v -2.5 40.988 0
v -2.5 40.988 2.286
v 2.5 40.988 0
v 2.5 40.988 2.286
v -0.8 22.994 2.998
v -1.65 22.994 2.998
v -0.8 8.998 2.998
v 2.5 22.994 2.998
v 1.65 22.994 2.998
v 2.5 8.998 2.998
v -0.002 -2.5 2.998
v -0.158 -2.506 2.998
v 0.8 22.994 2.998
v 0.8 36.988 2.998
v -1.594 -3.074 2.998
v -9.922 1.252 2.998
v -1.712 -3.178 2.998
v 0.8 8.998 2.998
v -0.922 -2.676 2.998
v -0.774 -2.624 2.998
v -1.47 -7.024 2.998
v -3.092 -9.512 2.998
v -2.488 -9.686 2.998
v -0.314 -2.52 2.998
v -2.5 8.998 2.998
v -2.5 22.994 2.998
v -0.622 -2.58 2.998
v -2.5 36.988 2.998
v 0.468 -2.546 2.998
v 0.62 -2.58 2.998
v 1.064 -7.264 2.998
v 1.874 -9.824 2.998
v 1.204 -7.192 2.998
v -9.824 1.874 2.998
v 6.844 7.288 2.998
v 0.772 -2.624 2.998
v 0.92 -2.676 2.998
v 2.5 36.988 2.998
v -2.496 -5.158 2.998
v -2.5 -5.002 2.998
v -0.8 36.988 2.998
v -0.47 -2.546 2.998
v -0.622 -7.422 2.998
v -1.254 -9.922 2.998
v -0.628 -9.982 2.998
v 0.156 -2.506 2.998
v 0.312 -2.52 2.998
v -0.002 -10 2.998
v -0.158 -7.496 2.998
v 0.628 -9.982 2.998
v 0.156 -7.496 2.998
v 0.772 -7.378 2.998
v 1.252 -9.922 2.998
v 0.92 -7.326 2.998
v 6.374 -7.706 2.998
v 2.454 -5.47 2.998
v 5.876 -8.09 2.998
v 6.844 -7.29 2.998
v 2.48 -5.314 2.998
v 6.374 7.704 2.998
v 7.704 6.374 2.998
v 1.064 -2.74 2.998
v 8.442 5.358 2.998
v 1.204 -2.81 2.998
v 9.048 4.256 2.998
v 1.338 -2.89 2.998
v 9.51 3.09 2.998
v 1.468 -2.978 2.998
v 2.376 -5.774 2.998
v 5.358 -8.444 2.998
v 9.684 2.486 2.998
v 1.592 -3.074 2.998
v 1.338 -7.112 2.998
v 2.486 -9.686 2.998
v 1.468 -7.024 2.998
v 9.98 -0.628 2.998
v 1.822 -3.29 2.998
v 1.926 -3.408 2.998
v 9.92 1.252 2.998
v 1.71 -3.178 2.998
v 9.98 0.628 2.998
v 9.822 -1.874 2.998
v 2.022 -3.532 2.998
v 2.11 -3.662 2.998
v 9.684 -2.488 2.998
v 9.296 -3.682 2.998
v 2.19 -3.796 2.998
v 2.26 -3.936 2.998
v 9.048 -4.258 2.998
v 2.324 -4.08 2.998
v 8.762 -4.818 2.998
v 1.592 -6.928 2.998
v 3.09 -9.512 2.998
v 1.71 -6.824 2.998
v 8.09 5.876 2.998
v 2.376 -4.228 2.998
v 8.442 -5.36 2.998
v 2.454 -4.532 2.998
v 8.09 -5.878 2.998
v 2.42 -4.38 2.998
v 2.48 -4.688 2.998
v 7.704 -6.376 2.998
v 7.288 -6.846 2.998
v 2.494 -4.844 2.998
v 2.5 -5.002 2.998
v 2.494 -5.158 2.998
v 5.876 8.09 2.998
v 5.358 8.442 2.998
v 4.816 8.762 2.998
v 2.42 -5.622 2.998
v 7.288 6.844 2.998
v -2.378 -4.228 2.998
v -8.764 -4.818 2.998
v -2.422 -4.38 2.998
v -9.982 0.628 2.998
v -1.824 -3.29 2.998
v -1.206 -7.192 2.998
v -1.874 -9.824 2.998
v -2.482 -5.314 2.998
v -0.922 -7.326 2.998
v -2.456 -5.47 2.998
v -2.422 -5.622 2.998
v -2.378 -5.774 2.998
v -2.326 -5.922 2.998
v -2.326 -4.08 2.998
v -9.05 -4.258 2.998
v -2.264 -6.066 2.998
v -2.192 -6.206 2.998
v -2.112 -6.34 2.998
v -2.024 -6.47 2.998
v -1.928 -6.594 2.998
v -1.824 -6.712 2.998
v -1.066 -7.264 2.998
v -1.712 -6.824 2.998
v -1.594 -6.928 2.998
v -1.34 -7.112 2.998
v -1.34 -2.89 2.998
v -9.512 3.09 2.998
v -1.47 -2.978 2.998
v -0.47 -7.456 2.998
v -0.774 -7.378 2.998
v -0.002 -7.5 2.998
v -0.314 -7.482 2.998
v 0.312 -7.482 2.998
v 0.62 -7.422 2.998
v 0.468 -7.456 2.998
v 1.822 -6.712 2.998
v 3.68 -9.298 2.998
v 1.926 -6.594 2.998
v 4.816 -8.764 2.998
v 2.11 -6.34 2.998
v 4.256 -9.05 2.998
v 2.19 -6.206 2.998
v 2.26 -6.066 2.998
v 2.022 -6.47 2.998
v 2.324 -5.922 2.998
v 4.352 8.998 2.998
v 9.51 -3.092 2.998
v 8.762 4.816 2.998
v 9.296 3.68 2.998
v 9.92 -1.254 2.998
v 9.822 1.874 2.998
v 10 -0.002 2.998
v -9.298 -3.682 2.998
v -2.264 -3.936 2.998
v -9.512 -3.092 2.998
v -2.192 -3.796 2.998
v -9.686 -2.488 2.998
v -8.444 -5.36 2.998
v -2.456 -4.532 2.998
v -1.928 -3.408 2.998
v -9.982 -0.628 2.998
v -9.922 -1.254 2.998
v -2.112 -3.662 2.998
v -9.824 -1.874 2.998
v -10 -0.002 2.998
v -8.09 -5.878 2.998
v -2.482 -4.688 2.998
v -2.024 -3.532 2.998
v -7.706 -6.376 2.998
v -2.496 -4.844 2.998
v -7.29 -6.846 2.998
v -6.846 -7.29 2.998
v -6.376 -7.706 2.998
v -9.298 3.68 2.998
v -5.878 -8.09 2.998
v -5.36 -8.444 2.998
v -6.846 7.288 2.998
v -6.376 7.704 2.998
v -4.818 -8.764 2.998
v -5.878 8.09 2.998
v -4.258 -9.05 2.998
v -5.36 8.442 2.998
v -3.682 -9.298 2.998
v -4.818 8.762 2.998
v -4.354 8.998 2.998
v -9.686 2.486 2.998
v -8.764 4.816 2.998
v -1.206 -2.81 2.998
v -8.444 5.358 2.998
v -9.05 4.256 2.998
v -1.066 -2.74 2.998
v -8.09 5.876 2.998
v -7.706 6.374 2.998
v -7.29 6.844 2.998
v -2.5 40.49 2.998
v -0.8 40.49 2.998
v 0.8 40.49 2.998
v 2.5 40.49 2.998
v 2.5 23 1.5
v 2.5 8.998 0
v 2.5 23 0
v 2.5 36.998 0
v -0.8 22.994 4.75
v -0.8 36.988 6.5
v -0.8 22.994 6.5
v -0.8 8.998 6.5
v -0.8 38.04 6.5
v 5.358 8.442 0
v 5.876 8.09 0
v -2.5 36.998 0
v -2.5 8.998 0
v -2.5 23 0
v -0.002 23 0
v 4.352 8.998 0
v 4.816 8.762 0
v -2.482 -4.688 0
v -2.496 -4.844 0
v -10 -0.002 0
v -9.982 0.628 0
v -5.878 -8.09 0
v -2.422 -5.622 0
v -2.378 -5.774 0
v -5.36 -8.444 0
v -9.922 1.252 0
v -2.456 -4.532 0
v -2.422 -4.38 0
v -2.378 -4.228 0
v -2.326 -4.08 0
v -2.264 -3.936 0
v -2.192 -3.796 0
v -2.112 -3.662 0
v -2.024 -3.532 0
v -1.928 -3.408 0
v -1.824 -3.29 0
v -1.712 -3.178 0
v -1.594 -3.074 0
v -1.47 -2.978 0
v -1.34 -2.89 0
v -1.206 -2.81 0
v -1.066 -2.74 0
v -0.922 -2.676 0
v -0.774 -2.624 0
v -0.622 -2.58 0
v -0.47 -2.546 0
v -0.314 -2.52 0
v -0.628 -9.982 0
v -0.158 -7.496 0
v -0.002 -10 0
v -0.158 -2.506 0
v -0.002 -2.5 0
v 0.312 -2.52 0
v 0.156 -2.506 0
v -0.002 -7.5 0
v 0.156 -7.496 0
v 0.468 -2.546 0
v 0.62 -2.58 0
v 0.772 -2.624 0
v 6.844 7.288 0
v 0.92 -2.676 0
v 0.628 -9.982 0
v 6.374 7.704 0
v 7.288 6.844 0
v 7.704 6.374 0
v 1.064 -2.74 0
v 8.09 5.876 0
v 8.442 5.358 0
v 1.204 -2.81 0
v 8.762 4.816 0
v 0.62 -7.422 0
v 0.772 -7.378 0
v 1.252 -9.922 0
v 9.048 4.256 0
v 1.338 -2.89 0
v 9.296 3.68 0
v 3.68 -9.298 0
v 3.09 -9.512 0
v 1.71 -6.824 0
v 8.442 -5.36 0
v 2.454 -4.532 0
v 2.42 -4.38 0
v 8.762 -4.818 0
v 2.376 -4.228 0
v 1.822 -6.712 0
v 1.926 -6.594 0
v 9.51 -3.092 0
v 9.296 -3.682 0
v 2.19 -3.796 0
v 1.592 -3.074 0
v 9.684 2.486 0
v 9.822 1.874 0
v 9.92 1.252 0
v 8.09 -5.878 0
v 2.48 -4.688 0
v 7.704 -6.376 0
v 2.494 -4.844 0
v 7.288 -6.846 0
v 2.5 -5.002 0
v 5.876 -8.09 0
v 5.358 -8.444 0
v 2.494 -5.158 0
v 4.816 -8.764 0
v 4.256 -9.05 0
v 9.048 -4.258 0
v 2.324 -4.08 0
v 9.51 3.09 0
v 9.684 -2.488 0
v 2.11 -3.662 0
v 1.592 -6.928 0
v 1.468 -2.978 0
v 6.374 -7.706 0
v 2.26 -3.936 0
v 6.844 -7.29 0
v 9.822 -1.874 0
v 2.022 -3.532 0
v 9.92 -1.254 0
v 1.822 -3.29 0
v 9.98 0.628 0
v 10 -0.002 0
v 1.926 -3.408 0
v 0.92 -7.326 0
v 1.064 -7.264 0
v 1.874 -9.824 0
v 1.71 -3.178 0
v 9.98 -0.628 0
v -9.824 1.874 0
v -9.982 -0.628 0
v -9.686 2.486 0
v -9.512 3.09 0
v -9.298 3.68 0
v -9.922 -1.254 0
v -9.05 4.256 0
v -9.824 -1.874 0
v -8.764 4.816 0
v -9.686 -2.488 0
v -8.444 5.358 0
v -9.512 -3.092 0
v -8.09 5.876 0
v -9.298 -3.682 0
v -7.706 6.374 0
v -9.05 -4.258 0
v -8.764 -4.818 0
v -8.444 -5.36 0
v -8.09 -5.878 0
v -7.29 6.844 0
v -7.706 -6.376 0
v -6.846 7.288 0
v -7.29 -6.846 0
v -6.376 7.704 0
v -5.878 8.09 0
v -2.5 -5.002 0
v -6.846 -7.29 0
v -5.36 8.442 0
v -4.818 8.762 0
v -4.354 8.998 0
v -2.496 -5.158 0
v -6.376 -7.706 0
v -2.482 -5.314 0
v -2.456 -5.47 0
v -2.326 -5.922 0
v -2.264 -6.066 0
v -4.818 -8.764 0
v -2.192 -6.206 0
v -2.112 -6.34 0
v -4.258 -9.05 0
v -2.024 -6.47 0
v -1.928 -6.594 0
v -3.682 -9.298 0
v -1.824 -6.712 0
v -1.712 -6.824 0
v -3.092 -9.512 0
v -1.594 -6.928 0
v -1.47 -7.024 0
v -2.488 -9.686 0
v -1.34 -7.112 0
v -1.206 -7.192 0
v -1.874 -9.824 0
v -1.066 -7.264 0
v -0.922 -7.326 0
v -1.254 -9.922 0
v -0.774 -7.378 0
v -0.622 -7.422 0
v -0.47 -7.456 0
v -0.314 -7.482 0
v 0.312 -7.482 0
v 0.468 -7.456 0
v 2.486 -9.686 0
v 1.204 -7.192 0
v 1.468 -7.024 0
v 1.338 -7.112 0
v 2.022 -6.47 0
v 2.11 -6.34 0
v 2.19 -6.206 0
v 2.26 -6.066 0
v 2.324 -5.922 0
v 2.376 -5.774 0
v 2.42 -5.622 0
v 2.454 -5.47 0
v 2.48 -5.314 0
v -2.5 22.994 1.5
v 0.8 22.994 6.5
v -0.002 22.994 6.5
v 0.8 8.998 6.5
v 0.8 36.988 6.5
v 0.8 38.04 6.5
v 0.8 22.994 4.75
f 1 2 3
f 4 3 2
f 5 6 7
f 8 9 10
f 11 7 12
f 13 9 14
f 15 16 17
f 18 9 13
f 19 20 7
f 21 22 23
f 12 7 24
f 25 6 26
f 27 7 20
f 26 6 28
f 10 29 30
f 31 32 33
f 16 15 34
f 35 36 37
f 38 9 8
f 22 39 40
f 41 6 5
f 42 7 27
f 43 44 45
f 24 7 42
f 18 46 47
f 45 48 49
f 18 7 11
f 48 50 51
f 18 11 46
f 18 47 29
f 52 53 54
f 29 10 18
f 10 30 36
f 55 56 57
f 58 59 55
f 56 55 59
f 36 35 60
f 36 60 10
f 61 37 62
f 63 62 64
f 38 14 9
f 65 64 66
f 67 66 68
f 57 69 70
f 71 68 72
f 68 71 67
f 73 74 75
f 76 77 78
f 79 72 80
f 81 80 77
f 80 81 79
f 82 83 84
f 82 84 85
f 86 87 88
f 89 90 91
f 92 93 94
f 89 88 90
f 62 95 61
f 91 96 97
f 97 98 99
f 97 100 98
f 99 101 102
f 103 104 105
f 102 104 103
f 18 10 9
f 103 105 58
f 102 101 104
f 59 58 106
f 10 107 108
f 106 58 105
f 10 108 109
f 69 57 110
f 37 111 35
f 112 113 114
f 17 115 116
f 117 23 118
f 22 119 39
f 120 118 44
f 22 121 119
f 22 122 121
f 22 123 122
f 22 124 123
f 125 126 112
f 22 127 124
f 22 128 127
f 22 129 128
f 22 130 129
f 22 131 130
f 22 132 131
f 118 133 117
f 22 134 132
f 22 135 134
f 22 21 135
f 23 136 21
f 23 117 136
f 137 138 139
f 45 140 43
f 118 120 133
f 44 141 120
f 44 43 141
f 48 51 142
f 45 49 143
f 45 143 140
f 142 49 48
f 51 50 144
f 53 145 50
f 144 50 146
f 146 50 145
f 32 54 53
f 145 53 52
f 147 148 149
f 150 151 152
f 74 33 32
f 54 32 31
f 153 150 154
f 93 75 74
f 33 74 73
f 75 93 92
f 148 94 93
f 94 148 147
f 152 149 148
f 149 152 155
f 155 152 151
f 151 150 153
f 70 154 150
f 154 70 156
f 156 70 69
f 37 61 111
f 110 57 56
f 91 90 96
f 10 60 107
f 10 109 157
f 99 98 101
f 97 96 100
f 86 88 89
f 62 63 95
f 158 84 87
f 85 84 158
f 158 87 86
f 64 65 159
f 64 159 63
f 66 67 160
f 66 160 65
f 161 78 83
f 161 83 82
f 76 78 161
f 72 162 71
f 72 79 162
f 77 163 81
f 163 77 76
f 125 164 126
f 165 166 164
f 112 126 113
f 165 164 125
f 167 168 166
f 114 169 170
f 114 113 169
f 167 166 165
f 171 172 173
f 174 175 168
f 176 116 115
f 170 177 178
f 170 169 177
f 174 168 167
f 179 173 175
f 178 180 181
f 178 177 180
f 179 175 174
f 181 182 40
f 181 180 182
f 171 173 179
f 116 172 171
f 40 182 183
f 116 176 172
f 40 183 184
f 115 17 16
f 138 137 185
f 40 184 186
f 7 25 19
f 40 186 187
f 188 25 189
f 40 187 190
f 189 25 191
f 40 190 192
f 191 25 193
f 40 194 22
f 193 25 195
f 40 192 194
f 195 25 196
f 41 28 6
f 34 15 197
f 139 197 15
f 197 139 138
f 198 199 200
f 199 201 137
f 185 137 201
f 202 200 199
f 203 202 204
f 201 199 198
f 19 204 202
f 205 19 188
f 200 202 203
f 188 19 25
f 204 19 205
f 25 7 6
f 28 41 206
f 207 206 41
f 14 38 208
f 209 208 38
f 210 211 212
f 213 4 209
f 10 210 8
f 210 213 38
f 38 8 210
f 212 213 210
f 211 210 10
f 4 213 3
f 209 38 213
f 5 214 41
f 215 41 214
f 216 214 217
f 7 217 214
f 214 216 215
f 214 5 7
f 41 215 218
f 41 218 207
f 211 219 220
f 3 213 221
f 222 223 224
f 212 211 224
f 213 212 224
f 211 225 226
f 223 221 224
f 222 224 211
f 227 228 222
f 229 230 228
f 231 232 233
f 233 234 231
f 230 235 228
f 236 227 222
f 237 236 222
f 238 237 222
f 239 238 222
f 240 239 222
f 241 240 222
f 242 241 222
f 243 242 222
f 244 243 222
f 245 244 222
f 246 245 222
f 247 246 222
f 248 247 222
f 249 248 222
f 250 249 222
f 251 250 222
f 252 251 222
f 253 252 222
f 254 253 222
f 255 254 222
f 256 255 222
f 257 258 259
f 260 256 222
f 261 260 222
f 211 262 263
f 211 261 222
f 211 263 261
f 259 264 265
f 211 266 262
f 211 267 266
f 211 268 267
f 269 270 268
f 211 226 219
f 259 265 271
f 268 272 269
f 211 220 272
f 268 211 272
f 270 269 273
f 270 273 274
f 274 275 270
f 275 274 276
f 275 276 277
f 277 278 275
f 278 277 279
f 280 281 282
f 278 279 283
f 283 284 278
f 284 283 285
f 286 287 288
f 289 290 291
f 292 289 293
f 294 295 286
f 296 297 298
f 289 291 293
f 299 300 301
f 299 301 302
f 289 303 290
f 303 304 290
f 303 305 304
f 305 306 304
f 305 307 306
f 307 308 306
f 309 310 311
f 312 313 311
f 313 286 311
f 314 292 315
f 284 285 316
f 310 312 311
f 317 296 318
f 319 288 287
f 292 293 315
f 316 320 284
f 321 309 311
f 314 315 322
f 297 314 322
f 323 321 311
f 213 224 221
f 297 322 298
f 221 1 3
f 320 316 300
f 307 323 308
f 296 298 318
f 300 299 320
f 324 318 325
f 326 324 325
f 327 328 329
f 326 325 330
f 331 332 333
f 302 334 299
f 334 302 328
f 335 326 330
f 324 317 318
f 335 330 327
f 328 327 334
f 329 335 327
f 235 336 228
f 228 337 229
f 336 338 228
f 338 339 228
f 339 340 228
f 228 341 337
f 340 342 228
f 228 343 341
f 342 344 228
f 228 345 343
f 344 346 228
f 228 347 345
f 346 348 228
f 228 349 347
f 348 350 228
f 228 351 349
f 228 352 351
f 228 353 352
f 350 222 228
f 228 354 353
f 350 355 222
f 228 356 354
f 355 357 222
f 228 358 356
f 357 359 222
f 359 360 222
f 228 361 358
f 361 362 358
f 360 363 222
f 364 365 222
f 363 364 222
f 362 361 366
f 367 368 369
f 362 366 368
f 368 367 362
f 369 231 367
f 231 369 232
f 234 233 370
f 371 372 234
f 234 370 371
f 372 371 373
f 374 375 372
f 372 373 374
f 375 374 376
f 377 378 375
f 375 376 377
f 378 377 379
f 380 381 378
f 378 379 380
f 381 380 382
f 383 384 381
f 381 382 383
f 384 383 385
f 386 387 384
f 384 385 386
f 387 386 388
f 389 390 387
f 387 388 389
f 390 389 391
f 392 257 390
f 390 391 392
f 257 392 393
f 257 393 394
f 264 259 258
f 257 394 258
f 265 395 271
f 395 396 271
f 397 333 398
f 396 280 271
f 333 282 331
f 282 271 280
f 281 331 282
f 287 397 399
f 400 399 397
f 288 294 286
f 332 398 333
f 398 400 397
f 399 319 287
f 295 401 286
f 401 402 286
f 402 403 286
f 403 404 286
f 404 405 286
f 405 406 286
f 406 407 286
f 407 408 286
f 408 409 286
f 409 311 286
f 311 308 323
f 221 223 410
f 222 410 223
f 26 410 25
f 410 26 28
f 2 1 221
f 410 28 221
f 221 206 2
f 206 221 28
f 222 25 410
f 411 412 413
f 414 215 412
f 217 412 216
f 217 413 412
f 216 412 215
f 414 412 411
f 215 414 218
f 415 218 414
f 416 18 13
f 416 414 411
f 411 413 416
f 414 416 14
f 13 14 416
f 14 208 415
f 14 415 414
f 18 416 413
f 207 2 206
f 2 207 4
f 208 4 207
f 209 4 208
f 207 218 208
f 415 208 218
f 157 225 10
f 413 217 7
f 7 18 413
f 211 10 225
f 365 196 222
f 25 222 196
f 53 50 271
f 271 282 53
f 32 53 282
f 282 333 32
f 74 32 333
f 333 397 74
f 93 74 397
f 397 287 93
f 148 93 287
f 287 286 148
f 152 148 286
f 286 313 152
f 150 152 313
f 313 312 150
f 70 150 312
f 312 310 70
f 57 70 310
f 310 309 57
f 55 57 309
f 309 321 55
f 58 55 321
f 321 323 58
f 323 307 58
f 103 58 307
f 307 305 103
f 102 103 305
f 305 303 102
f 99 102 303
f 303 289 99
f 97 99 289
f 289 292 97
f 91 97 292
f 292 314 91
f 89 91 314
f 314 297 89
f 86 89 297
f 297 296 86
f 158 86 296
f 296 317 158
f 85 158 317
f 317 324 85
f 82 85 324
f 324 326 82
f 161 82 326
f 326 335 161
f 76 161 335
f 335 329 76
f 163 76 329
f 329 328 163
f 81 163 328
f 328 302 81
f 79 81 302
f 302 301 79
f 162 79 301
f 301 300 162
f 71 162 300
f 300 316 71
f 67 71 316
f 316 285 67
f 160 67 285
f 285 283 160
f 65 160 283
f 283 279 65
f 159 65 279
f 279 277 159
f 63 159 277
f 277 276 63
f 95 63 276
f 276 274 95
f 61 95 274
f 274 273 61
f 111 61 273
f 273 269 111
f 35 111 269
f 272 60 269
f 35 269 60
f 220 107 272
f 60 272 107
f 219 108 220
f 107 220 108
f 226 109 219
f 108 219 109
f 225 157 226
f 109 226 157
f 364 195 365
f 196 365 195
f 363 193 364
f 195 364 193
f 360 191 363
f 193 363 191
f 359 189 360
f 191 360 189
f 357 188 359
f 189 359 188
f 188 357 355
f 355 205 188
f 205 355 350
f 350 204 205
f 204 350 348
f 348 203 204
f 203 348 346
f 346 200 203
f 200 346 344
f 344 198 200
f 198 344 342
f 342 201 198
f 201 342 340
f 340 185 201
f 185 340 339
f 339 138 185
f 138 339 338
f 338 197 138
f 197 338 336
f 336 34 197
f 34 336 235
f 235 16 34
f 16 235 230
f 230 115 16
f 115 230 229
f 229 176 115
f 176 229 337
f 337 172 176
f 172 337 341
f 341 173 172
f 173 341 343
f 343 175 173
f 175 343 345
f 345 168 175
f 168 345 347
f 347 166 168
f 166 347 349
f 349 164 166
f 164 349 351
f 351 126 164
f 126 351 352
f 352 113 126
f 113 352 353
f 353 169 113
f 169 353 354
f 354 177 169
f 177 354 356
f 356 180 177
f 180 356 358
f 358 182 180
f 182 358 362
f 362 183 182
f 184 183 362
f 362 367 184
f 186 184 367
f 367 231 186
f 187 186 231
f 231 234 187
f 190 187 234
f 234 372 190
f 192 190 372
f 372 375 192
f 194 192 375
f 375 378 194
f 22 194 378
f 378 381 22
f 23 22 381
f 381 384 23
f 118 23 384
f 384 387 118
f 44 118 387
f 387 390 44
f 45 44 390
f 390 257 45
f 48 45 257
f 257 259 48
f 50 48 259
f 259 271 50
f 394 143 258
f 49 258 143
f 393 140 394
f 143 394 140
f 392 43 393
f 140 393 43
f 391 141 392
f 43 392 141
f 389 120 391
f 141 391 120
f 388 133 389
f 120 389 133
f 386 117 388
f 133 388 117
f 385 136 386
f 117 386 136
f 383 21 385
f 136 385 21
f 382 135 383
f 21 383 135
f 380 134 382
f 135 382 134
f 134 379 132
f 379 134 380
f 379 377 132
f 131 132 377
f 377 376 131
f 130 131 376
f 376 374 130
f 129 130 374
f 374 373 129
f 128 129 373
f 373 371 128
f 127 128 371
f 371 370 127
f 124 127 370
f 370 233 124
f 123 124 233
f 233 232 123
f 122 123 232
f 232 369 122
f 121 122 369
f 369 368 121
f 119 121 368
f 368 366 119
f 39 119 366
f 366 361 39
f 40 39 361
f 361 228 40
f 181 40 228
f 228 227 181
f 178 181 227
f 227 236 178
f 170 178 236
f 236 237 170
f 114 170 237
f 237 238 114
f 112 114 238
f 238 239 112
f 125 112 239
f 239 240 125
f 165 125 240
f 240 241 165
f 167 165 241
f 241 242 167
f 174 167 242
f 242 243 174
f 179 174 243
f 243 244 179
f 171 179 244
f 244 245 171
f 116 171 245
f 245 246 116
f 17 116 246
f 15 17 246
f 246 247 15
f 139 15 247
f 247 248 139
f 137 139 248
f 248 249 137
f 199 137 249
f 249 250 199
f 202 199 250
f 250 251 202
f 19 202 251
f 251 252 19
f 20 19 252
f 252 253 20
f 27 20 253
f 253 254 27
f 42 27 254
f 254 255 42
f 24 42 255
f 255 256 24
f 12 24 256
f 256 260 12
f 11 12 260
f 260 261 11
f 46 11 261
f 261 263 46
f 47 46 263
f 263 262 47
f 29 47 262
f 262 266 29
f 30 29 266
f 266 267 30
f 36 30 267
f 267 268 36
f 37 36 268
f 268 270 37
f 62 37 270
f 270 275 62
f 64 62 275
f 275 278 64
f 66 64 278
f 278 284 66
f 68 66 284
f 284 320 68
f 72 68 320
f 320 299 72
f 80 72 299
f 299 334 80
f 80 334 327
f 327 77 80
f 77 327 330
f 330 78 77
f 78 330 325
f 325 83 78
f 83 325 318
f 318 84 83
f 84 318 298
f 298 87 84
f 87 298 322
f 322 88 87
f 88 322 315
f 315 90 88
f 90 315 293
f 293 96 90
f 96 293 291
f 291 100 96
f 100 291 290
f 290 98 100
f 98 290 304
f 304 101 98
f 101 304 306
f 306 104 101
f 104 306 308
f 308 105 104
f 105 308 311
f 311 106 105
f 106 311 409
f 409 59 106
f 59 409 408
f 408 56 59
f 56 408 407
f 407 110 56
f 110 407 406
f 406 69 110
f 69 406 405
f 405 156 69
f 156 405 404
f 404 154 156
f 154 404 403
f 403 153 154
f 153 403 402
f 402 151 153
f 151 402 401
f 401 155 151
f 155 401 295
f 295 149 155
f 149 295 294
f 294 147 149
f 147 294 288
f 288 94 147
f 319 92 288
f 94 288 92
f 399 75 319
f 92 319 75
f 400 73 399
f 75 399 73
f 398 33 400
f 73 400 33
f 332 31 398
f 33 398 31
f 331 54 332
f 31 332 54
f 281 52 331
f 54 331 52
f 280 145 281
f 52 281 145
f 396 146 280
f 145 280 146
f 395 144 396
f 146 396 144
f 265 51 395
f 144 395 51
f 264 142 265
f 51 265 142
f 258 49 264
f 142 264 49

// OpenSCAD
SHAFT_LENGTH = 28;
BOW_FLAT = 9;
KEY_HEIGHT = 3;

module keyShaftEnd(length){
    difference(){
      keyShaft(length);
      translate([-5,-5,length-4])
        rotate([35,0,0])
          cube([15,10,10]);
     
    }

}

module keyShaft(length){
    linear_extrude(height=length)
      polygon([[-0.5,0],[-0.5,KEY_HEIGHT],[4.5,KEY_HEIGHT],[4.5,0],[2.8,0],[2.8,-3.5],[1.2,-3.5],[1.2,0]]);
}

module keyBow(){
  linear_extrude(height=KEY_HEIGHT)  
      difference(){
        circle(d=20,$fn=100); 
        translate([-10,BOW_FLAT,0])  
          square([20,10]);
        translate([0,-5,0])    
          circle(d=5,$fn=100);  
      }
}

module key(){
   translate([-2,BOW_FLAT,KEY_HEIGHT]) 
     rotate([-90,0,0])
       keyShaft(SHAFT_LENGTH);
   translate([-2,BOW_FLAT+SHAFT_LENGTH-0.01,KEY_HEIGHT]) 
     rotate([-90,0,0])
       keyShaftEnd(4); 
   keyBow();    
}

key();

//keyShaftEnd(10);
